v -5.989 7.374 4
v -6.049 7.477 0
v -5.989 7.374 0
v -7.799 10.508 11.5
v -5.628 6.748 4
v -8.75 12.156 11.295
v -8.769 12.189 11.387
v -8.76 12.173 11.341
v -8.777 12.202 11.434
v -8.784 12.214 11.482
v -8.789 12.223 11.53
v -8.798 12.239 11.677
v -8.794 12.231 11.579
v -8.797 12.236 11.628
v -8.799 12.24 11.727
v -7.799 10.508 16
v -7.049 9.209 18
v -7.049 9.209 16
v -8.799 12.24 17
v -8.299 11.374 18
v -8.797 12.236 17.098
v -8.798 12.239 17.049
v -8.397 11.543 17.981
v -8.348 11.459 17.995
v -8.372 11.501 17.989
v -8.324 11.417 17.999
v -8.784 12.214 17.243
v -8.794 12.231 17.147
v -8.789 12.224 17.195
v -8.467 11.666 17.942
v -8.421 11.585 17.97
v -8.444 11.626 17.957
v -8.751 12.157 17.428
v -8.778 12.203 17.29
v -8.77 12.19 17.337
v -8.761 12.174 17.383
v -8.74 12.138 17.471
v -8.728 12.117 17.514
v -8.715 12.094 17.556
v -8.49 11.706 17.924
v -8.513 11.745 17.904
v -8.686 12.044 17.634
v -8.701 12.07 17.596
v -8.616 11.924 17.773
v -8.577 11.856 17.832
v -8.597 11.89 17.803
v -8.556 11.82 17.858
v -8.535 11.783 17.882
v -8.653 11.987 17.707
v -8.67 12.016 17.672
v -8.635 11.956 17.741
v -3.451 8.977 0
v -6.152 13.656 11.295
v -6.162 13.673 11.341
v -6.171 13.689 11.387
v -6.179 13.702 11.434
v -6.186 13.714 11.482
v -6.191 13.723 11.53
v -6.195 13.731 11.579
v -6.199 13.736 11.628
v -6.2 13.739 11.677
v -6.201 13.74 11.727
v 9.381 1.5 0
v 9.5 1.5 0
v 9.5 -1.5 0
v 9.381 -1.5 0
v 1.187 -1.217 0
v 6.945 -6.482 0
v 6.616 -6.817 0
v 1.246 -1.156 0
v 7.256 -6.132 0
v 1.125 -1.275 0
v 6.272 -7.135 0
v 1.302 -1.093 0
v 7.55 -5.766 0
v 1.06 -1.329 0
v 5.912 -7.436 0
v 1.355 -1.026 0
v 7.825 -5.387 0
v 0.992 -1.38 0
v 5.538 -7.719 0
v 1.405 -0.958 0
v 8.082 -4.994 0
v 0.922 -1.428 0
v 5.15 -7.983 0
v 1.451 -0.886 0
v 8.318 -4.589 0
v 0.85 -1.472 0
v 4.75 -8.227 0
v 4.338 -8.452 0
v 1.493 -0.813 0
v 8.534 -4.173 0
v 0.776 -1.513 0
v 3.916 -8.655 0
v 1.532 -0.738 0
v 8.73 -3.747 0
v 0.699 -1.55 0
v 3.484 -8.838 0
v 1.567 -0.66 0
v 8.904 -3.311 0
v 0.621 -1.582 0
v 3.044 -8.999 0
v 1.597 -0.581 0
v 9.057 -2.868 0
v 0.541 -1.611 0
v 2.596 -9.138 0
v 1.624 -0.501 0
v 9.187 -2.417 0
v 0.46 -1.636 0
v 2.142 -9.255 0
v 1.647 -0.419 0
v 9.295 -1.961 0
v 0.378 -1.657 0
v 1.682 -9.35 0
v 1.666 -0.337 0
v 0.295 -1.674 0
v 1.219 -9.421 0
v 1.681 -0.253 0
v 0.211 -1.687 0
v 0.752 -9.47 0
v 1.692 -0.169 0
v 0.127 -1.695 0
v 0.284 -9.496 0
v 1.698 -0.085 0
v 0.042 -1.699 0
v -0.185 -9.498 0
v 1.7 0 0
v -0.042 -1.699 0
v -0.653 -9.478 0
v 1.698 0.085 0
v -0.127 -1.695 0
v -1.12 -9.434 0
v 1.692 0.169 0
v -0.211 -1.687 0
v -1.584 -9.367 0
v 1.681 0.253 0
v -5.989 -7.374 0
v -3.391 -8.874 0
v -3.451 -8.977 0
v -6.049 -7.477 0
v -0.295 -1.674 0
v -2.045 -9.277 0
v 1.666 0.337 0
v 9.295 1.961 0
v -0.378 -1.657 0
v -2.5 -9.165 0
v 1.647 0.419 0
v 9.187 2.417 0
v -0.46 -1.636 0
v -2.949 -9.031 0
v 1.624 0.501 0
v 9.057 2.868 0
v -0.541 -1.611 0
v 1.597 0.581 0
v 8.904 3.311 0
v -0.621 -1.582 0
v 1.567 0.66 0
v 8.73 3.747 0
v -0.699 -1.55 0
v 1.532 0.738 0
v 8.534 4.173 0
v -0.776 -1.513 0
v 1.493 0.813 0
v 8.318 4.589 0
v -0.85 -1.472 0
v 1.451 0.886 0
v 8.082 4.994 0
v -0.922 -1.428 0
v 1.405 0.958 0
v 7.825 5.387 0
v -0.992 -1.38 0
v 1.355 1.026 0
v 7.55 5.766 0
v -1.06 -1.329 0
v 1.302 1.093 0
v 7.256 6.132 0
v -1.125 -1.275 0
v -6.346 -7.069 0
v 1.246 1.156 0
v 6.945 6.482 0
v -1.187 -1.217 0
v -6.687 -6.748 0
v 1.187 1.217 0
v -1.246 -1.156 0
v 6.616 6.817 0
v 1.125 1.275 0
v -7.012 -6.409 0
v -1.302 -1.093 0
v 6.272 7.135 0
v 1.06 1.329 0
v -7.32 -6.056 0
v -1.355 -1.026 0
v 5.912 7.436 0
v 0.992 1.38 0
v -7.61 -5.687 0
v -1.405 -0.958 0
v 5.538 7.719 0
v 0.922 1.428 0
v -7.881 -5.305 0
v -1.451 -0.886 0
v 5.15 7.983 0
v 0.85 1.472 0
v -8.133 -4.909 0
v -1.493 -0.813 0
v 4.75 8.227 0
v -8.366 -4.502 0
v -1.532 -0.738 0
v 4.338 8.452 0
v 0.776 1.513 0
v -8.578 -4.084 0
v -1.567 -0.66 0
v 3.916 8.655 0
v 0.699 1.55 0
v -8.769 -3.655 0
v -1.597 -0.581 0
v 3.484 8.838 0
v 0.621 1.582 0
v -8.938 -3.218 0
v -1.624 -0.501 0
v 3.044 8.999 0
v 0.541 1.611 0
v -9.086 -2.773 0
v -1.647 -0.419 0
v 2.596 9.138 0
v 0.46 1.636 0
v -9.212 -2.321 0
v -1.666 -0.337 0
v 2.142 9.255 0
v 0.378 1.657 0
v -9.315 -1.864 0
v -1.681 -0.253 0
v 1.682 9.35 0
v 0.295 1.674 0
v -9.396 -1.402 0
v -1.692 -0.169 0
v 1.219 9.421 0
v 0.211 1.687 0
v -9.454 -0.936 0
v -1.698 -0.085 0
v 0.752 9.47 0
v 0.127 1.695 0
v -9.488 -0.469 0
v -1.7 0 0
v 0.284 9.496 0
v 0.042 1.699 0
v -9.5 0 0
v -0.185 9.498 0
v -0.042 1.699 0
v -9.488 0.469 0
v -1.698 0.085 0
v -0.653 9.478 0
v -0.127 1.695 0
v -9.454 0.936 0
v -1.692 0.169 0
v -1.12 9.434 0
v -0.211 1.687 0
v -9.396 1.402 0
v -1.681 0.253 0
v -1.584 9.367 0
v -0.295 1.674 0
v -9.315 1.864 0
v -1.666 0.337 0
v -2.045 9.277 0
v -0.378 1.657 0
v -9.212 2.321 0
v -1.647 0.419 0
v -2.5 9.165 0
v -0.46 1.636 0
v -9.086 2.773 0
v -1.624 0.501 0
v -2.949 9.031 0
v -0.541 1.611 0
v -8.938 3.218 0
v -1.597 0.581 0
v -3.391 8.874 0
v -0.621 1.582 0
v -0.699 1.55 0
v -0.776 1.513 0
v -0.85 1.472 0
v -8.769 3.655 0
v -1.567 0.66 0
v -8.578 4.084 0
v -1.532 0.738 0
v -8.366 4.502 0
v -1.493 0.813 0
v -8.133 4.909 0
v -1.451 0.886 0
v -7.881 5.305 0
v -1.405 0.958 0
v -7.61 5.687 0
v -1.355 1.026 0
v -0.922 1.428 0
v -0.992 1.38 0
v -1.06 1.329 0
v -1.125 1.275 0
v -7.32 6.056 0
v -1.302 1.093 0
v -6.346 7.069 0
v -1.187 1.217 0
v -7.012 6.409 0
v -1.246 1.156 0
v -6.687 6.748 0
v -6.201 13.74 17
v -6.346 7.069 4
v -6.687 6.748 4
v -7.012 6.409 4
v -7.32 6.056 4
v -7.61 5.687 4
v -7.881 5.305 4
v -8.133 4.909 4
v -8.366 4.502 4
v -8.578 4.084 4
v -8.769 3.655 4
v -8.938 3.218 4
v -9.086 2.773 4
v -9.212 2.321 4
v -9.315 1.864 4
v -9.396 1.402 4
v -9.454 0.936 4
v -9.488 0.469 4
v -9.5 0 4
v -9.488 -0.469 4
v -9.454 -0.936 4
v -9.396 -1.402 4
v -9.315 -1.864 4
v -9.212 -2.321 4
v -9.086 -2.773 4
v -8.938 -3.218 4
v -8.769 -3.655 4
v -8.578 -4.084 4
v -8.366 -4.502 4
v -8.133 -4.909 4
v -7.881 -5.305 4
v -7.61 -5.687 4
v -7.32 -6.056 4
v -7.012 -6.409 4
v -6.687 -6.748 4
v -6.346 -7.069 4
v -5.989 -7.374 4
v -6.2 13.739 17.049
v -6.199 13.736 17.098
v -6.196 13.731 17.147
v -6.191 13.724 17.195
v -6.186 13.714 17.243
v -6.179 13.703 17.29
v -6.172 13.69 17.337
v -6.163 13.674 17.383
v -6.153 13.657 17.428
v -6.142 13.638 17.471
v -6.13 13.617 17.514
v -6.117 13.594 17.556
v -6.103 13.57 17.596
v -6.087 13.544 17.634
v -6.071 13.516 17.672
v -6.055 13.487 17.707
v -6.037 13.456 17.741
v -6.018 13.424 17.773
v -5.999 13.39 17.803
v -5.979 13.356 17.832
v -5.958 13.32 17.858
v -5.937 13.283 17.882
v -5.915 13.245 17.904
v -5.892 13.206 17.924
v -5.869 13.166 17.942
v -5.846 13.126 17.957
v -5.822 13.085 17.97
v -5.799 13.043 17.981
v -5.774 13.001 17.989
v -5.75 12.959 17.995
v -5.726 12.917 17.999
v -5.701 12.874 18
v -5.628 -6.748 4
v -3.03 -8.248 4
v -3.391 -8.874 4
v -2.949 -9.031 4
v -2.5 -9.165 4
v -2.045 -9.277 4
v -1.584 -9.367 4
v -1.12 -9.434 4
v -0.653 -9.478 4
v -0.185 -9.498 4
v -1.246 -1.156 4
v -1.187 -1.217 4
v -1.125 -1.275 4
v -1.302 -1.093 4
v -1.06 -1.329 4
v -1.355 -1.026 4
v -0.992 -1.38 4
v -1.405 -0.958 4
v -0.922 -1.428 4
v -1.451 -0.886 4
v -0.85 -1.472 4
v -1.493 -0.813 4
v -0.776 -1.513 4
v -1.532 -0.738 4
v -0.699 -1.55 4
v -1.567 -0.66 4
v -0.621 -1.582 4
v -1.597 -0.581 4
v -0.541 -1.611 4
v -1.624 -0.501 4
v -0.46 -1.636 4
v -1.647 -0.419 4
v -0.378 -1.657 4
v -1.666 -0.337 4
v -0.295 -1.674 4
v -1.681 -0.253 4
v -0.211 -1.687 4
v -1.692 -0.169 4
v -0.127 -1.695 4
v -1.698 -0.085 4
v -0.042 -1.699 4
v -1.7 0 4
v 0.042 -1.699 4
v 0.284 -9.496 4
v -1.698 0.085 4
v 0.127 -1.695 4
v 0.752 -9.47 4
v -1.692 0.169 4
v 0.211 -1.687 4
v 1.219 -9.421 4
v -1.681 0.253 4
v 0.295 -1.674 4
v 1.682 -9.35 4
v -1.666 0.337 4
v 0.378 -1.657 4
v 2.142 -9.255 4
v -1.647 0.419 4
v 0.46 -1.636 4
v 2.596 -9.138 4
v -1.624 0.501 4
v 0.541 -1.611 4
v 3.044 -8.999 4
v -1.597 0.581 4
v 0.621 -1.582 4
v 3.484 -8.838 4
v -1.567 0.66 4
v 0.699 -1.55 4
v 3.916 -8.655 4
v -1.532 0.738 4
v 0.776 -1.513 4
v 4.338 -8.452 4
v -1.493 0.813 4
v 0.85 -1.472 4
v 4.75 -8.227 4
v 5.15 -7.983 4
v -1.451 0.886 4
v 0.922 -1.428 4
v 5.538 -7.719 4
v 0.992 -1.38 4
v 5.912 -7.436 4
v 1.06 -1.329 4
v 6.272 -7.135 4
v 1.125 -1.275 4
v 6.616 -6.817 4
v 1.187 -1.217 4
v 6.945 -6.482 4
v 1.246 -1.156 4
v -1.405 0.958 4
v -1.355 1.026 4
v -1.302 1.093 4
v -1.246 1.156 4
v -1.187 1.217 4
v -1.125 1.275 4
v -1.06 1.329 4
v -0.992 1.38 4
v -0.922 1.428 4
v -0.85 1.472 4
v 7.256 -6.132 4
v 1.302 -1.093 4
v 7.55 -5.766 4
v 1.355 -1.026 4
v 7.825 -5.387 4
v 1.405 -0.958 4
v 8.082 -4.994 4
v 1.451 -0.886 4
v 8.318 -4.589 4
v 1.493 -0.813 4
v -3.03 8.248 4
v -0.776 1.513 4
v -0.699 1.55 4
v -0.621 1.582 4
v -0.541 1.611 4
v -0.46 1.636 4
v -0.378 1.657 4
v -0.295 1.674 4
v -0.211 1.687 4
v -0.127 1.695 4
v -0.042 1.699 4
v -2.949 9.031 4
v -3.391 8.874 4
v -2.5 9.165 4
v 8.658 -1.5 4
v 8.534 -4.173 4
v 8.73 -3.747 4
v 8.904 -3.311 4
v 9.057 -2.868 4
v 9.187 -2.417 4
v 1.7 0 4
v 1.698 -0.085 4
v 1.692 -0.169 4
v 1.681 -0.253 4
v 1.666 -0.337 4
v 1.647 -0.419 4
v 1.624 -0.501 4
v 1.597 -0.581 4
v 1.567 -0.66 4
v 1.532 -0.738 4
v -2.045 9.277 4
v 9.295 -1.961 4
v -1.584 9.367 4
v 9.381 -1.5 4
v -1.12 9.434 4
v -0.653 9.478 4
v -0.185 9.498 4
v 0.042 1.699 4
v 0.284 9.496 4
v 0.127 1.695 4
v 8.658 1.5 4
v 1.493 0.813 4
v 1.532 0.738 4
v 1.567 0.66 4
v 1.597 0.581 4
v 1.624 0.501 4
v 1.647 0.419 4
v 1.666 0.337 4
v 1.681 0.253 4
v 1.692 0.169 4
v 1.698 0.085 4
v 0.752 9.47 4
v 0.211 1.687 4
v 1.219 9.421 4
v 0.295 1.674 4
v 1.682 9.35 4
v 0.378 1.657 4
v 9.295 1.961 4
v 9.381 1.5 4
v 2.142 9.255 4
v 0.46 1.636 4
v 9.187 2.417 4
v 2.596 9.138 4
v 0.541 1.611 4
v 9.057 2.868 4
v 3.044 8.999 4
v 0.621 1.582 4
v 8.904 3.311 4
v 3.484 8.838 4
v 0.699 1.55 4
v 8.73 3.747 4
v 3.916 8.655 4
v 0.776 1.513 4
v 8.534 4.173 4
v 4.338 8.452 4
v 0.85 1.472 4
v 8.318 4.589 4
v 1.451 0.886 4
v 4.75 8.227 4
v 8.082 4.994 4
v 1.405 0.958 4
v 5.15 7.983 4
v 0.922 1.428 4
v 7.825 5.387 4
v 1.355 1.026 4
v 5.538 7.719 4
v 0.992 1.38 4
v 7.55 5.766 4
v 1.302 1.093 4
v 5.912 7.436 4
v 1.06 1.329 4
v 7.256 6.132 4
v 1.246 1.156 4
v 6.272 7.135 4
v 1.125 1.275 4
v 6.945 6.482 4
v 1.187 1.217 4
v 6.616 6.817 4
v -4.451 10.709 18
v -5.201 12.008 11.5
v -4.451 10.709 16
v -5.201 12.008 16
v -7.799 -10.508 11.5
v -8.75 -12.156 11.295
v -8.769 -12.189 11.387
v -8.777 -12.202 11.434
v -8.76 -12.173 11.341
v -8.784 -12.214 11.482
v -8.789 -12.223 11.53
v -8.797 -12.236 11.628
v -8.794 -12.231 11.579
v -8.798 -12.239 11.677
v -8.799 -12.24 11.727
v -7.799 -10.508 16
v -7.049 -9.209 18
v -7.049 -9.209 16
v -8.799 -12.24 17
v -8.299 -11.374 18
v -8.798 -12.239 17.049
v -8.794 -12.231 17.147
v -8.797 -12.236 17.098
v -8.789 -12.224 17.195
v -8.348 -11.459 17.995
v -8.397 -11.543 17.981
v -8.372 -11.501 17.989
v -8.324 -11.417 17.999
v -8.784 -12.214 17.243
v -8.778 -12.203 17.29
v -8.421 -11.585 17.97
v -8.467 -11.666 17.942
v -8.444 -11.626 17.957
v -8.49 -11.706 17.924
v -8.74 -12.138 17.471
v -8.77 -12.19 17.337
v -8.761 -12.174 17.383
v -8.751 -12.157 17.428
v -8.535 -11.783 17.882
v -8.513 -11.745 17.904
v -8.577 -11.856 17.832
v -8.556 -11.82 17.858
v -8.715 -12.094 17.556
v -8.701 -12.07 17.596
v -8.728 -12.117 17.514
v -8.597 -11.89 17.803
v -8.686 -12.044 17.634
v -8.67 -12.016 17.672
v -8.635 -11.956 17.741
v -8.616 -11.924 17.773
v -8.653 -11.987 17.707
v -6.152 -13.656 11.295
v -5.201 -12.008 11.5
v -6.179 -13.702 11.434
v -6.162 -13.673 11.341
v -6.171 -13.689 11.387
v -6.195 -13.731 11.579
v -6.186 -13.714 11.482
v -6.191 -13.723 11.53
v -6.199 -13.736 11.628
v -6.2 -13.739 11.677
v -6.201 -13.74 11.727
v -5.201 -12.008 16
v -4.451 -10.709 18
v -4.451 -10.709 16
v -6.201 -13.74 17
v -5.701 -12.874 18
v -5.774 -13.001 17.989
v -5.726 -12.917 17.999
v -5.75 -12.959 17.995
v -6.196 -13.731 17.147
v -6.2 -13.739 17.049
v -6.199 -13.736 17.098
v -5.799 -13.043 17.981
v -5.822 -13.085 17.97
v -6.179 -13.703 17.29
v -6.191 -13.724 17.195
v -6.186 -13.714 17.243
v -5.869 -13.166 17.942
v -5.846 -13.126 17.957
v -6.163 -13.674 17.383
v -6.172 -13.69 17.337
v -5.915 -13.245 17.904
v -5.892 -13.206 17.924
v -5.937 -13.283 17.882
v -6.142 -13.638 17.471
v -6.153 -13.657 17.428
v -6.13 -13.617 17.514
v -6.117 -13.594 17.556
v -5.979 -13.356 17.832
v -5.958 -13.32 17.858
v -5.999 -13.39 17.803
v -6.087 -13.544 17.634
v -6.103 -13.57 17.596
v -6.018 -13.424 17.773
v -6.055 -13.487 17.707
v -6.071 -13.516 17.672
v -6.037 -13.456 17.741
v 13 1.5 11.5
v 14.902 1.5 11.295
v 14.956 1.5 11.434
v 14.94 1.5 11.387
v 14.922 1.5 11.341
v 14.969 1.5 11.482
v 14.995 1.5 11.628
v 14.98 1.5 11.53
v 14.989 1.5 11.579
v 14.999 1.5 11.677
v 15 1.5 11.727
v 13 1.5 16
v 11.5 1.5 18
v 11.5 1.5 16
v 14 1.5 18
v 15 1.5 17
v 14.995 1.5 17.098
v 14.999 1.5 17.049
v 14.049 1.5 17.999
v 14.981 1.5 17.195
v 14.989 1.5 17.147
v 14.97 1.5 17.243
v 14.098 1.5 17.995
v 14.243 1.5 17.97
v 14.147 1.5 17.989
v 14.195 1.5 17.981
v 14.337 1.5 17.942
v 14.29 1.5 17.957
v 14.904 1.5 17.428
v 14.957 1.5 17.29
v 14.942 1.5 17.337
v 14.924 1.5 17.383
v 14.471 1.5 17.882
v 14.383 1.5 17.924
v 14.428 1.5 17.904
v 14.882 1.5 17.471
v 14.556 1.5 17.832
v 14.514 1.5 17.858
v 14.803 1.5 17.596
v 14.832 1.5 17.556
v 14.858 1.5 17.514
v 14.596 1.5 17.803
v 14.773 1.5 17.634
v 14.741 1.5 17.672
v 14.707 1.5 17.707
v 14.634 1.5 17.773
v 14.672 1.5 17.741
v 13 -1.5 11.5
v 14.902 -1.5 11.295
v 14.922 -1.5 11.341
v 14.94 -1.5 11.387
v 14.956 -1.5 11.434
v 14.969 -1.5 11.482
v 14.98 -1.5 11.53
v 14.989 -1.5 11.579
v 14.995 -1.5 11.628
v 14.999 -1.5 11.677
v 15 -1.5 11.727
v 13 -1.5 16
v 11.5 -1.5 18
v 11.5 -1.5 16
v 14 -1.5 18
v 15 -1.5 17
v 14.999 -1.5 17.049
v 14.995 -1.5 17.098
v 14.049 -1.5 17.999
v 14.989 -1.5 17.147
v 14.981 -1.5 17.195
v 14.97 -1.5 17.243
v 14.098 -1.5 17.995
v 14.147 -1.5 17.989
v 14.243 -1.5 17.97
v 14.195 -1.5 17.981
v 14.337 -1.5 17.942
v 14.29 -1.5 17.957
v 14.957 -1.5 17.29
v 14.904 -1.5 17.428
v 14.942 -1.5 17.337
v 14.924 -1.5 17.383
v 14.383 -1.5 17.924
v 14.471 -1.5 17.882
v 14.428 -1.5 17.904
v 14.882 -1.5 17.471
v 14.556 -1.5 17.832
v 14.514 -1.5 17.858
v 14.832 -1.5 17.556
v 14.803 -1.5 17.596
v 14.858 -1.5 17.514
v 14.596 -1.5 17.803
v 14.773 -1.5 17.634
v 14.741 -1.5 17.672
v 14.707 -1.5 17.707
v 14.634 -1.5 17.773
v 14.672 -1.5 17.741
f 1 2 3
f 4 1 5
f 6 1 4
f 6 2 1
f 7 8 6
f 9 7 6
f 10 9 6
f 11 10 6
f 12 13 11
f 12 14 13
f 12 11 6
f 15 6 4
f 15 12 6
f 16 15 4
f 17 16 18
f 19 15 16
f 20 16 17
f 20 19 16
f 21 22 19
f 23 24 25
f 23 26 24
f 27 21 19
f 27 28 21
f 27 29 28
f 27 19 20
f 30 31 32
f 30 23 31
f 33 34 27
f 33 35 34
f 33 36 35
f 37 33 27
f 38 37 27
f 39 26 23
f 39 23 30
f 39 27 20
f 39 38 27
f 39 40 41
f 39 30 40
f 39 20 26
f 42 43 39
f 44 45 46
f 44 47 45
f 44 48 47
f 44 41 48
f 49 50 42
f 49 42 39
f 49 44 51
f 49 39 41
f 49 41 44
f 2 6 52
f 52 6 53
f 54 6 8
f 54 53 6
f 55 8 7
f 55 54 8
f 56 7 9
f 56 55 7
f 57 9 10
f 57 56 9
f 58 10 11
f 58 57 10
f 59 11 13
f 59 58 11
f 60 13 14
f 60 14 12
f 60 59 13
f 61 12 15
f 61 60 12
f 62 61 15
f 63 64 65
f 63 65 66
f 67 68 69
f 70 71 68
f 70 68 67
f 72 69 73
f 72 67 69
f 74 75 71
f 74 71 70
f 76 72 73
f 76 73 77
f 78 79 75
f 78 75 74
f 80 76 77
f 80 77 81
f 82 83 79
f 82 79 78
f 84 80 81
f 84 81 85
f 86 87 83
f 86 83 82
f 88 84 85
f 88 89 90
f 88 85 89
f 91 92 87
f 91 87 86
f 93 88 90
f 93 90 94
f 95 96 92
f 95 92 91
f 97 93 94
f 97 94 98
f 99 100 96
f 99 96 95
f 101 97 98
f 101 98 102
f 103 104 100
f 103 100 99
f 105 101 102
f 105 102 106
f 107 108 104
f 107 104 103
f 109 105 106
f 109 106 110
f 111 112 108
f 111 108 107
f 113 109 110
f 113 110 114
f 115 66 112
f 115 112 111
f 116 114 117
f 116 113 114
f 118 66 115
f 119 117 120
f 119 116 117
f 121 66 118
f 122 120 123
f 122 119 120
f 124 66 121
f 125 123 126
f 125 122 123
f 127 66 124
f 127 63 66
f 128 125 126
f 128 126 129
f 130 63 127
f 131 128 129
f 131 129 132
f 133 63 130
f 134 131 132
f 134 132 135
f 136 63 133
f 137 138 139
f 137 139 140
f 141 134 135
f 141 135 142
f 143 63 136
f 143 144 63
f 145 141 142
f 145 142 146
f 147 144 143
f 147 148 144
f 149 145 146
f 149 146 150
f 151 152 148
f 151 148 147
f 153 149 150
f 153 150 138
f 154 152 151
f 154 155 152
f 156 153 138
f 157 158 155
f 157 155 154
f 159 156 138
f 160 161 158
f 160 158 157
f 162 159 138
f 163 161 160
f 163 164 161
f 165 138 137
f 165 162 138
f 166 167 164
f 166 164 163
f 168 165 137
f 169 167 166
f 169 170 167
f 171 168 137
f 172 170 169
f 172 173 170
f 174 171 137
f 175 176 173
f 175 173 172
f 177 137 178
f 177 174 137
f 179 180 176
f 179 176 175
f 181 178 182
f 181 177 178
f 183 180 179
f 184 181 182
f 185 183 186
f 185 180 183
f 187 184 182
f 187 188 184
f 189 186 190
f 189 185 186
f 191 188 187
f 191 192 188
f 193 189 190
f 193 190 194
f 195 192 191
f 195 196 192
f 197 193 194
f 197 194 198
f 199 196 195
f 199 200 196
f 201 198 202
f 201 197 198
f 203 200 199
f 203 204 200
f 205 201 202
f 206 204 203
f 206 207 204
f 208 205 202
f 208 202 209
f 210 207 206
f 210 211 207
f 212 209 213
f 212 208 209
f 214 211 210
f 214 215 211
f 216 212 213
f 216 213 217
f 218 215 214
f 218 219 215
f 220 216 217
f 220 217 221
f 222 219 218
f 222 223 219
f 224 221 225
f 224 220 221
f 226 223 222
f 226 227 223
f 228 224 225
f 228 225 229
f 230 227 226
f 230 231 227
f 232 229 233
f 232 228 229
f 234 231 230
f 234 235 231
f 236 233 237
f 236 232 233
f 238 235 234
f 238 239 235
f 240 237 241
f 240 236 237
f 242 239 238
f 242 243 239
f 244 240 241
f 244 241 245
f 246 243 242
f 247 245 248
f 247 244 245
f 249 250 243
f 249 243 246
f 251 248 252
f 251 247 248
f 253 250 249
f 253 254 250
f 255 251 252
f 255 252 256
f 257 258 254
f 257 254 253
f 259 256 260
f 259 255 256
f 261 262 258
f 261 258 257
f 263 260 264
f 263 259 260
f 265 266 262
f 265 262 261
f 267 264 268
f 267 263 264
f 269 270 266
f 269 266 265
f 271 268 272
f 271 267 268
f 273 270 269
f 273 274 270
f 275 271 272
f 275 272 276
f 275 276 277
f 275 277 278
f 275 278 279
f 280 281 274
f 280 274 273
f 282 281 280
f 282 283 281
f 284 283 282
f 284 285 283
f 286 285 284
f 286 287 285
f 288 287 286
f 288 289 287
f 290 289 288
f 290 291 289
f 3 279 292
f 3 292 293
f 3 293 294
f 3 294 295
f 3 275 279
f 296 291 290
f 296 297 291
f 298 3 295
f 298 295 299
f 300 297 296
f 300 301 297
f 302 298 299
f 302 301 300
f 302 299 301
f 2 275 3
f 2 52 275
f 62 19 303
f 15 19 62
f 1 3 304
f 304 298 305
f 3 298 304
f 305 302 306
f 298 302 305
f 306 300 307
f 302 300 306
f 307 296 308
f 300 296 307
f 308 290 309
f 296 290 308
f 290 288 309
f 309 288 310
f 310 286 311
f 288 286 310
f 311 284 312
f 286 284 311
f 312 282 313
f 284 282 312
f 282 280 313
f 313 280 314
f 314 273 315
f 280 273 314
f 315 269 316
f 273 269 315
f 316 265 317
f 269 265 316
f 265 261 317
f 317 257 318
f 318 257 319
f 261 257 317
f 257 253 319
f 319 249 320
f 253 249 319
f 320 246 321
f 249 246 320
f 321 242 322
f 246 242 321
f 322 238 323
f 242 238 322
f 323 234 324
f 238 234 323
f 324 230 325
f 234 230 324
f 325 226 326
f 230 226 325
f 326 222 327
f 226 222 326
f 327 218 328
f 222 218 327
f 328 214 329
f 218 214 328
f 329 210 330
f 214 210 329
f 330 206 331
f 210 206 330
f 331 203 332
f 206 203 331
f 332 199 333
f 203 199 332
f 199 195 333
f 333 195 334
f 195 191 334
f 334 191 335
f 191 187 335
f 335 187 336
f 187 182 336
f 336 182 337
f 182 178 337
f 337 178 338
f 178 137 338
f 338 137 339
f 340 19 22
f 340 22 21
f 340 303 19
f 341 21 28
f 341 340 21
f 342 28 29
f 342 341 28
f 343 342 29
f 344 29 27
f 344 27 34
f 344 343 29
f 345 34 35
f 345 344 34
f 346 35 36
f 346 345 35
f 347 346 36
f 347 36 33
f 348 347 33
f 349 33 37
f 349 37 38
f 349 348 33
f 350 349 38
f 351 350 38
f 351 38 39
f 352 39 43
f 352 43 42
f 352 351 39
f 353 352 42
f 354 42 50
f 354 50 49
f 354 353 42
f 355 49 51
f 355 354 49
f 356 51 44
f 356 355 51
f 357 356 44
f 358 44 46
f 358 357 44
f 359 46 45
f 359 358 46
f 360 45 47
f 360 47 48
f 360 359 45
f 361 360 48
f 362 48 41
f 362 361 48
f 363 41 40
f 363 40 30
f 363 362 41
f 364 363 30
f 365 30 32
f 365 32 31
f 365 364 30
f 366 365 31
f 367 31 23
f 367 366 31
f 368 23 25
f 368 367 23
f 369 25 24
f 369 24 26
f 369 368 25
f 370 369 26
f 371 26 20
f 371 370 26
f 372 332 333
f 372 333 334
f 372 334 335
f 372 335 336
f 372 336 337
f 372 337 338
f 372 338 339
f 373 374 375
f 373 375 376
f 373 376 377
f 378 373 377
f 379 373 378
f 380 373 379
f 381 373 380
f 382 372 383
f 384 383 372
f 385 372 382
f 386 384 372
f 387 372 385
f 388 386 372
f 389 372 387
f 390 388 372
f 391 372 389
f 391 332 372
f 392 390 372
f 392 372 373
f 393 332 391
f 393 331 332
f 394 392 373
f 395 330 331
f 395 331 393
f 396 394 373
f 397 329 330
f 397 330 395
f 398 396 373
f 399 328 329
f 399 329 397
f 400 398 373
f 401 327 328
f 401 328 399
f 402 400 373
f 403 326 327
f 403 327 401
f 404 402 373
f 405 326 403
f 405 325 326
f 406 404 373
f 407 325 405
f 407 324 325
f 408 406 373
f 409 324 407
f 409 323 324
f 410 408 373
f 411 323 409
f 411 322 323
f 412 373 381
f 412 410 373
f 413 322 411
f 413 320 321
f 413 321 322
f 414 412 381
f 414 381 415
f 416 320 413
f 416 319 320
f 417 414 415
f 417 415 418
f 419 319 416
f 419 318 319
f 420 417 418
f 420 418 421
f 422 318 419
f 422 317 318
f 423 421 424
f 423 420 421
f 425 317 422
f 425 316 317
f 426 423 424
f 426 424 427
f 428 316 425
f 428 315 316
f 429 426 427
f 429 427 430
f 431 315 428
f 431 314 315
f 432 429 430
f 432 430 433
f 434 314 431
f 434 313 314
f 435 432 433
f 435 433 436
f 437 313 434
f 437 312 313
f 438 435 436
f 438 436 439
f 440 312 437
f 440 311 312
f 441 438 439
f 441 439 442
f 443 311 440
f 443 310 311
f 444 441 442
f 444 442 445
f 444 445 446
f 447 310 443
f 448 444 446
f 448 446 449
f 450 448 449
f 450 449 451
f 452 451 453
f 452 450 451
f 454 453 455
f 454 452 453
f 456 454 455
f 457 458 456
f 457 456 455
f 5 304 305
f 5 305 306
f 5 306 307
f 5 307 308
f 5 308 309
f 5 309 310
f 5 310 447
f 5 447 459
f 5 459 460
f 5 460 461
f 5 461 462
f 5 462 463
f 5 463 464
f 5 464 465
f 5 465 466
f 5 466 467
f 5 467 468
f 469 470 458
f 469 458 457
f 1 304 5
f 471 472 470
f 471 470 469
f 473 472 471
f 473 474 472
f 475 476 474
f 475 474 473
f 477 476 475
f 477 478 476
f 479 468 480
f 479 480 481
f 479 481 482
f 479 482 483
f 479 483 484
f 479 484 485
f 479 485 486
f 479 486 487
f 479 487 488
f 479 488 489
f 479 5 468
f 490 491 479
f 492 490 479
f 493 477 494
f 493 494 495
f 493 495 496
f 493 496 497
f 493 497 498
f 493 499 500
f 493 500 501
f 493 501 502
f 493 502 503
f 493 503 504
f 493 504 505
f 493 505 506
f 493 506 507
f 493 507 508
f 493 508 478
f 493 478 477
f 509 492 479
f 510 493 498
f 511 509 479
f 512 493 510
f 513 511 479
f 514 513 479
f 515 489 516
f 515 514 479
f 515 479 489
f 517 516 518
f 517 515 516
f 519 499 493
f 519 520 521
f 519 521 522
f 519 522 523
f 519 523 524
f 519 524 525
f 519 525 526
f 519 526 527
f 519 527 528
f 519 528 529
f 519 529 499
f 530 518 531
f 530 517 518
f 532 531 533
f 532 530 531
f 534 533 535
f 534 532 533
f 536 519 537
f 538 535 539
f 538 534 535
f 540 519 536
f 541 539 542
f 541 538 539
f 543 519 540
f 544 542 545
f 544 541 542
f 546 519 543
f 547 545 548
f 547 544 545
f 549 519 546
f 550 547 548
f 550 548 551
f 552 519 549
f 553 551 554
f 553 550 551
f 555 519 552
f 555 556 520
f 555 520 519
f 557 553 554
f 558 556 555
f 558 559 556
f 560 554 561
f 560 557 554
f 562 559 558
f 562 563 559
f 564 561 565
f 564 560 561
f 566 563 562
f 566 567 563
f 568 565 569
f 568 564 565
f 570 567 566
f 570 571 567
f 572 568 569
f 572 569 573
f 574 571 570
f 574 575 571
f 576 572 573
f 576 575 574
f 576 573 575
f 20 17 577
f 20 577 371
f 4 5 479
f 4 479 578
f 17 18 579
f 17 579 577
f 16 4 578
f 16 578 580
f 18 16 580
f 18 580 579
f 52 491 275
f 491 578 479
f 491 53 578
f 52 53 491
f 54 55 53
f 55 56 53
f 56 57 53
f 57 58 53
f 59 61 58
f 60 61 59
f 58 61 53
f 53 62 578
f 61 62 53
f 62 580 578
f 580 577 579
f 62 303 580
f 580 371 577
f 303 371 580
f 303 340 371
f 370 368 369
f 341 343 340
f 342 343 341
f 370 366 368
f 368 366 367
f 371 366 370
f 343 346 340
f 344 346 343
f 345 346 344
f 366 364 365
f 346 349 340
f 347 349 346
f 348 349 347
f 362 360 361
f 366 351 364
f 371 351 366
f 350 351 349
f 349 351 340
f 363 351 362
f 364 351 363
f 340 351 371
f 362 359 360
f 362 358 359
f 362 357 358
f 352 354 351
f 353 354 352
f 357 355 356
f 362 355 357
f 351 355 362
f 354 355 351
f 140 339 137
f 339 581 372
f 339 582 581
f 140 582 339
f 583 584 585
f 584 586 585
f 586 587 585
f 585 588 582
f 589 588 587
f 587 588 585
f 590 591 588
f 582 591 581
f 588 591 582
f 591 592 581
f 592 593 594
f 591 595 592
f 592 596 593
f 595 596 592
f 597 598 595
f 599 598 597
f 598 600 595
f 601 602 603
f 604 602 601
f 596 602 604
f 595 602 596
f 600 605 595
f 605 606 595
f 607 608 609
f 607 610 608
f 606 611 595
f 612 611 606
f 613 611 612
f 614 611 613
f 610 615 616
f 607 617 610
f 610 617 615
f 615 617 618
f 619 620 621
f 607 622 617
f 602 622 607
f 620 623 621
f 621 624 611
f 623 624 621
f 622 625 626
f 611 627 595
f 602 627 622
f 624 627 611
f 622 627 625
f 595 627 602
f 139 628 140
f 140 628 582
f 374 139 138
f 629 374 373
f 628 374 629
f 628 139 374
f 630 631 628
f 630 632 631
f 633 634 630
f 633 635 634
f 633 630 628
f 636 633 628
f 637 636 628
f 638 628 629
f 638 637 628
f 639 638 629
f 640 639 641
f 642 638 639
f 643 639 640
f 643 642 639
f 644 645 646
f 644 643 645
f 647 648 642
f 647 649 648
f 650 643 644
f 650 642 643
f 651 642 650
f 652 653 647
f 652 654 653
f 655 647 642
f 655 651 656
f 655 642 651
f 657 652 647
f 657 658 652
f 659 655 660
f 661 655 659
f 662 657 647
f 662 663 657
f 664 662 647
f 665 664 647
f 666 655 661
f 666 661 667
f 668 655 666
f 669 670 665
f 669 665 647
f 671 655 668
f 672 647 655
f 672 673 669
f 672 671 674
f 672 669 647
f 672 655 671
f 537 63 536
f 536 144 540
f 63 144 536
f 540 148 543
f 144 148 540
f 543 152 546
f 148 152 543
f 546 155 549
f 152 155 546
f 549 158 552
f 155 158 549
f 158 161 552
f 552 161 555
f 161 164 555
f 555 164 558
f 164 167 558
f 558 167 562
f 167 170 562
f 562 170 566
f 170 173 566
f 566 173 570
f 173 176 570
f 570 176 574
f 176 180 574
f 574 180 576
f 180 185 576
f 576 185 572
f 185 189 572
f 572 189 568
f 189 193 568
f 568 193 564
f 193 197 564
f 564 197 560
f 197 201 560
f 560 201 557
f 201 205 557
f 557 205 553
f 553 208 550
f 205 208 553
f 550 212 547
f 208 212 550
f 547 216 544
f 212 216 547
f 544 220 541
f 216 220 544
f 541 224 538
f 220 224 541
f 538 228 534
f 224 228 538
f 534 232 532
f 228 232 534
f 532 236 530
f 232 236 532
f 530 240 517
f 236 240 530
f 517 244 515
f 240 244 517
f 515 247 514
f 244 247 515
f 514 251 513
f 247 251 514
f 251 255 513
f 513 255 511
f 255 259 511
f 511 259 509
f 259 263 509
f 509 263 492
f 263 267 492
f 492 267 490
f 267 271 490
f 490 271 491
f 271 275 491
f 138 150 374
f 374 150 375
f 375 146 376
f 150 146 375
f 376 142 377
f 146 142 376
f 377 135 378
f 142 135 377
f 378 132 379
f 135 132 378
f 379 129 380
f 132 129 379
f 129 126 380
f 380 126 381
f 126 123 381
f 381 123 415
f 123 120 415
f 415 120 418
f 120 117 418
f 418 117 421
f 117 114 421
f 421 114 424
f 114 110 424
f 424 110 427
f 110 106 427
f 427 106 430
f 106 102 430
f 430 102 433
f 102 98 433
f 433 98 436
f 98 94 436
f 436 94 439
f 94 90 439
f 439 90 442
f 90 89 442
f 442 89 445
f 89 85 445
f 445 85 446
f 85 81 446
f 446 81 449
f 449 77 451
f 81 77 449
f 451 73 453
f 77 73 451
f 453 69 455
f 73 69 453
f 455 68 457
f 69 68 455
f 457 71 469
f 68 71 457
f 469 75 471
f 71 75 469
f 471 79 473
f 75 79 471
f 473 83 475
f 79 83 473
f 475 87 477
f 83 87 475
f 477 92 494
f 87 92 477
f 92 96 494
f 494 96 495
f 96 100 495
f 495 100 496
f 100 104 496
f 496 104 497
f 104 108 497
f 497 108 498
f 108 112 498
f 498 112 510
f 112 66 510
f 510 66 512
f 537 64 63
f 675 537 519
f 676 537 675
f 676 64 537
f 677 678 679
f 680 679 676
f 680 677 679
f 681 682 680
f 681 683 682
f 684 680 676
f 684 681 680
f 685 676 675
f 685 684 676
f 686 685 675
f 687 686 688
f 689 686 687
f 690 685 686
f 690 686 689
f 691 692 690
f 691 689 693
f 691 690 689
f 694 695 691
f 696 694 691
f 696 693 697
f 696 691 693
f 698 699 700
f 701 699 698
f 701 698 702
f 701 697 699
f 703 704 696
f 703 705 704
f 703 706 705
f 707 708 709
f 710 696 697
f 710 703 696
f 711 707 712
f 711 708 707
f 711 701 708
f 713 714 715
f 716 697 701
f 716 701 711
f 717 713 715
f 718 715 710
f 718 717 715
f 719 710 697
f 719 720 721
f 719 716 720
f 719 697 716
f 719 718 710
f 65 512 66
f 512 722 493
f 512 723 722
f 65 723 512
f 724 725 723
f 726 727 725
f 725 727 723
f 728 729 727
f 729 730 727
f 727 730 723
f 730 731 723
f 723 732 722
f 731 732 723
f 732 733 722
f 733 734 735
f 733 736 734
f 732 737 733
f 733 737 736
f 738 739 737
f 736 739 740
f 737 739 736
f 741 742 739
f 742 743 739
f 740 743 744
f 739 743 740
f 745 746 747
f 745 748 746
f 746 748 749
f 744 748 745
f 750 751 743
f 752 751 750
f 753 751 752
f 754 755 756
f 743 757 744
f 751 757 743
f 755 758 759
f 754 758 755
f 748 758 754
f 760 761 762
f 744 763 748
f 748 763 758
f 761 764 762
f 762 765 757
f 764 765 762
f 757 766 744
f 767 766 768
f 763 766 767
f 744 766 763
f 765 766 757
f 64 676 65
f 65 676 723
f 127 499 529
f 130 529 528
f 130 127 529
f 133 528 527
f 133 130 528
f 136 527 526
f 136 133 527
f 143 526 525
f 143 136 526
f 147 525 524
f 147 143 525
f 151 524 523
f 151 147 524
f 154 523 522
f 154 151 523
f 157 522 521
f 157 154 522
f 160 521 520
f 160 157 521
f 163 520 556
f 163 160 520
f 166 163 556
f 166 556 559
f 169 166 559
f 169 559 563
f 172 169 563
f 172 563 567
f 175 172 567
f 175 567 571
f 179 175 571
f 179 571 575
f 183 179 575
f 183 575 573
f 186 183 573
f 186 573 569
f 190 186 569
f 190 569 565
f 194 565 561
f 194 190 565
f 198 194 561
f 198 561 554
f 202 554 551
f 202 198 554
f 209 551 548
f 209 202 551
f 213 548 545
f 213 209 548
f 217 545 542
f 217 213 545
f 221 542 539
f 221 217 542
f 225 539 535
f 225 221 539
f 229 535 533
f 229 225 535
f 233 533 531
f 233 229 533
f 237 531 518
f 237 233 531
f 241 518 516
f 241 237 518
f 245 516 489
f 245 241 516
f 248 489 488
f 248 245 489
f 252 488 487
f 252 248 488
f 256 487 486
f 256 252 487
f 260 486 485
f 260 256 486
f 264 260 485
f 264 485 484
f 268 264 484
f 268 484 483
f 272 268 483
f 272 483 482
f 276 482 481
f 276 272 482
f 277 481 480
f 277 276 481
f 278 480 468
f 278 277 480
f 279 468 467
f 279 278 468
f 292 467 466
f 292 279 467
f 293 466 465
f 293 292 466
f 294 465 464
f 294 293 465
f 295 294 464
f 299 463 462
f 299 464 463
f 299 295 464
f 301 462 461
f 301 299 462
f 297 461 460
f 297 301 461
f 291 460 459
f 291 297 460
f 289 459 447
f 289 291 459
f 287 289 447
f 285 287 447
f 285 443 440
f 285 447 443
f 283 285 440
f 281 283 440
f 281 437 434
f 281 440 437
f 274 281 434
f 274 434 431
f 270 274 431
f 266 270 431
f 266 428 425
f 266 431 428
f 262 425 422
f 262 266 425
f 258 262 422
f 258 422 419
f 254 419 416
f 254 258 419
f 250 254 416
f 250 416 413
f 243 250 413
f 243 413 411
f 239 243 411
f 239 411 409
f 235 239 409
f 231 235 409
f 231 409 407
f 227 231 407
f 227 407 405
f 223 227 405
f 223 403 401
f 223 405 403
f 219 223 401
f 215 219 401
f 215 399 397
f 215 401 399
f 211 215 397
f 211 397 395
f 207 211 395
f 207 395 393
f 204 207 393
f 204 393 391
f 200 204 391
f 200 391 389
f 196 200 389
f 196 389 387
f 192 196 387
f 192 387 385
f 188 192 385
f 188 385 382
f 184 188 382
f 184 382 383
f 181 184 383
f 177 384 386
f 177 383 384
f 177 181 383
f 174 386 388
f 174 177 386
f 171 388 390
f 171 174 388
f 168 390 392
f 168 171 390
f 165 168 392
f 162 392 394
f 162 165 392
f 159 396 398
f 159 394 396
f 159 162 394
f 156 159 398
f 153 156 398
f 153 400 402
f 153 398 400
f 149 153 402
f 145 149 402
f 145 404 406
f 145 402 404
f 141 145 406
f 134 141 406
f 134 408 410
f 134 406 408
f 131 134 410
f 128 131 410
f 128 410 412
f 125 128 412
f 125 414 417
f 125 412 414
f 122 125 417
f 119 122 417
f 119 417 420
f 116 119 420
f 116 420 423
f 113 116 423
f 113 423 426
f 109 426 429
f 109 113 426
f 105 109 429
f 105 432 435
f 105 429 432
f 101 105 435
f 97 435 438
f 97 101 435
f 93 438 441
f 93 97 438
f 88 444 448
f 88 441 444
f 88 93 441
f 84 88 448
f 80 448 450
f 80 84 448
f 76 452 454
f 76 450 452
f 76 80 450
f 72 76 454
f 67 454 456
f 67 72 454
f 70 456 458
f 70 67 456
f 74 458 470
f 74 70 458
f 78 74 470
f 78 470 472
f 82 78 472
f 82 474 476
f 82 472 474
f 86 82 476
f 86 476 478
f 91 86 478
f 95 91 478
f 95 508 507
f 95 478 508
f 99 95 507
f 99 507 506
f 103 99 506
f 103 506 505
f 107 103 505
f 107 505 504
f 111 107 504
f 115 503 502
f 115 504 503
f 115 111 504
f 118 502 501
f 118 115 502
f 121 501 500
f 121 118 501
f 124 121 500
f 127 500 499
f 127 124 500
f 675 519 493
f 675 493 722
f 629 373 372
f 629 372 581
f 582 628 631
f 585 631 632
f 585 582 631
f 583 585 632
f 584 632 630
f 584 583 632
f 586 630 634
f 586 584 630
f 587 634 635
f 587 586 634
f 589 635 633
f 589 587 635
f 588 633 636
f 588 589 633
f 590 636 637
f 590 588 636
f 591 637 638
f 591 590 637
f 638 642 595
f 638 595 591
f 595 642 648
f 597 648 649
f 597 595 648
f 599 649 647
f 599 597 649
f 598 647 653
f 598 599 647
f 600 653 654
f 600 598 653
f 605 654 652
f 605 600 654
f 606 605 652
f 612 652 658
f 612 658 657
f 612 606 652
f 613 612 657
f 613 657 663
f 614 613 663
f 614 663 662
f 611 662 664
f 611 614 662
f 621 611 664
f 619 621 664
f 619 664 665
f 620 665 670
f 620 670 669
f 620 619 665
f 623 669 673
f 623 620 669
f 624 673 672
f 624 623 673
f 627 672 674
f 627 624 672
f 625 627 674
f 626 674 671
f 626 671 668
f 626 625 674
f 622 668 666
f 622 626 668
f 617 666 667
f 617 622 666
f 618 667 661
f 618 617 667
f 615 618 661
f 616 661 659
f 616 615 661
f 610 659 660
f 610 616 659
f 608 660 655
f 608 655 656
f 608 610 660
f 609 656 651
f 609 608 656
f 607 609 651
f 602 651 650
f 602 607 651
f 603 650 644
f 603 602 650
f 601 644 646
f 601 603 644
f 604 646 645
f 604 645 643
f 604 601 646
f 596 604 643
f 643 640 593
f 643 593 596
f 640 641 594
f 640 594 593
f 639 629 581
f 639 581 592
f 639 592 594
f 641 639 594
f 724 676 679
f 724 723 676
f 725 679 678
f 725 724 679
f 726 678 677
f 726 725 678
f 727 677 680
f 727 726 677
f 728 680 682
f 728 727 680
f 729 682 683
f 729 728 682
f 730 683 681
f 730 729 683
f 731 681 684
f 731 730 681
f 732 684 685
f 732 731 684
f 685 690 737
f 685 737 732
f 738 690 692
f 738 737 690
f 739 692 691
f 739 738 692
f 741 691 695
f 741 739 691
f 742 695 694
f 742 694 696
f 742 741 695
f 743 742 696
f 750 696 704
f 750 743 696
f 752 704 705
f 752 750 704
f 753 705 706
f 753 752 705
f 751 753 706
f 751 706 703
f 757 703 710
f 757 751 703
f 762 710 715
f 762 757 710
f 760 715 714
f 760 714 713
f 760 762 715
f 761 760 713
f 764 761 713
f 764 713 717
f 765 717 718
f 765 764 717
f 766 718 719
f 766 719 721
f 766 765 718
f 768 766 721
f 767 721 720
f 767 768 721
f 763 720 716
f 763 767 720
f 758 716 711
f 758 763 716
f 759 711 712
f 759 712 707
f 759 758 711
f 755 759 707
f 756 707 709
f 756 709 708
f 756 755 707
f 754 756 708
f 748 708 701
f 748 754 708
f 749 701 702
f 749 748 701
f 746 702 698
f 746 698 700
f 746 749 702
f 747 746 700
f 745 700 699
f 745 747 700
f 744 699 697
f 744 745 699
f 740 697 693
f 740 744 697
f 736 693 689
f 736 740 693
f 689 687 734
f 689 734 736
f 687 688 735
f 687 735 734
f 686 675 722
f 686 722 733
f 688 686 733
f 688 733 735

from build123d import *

# Parameters (mm, degrees)
CYLINDER001_R      = 1.7
CYLINDER001_DEPTH  = 10
CYLINDER_R         = 9.5
CYLINDER_DEPTH     = 4
PAD_DEPTH          = 1.5
POLARPATTERN_COUNT = 3
FILLET_R           = 1


with BuildPart() as boltcylinder:
    # Cylinder001 → Cylinder001 (new body)
    with BuildSketch(Plane.XY):
        Circle(CYLINDER001_R)
    extrude(amount=CYLINDER001_DEPTH)


with BuildPart() as basecylinder:
    # Cylinder → Cylinder (new body)
    with BuildSketch(Plane.XY):
        Circle(CYLINDER_R)
    extrude(amount=CYLINDER_DEPTH)


with BuildPart() as fillet_body:
    # Sketch → Pad (new body, symmetric)
    with BuildSketch(Plane.XZ):
        Polygon((0, 0), (0, 2), (7.5, 2), (13, 11.5), (13, 16), (11.5, 16), (11.5, 18), (15, 18), (15, 11.5), (9.5, 0), align=None)
    pad = extrude(amount=PAD_DEPTH, both=True)

    # PolarPattern: Pad ×3 about axis
    polarpattern_axis = Axis((0, 0, 0), (0, 0, 1))
    for i in range(1, POLARPATTERN_COUNT):
        add(pad.rotate(polarpattern_axis, i * 360 / POLARPATTERN_COUNT))

    # Fusion: union BaseCylinder
    add(basecylinder.part)

    # Cut: cut BoltCylinder
    add(boltcylinder.part, mode=Mode.SUBTRACT)

    # Fillet
    fillet_edges = [fillet_body.edges().sort_by_distance(p)[0] for p in [
        (-7.5, 12.990381, 11.5),
        (-7.5, 12.990381, 18),
        (-7.5, -12.990381, 11.5),
        (15, 0, 11.5),
        (-7.5, -12.990381, 18),
        (15, 0, 18),
    ]]
    fillet(fillet_edges, radius=FILLET_R)


solid = fillet_body.part
